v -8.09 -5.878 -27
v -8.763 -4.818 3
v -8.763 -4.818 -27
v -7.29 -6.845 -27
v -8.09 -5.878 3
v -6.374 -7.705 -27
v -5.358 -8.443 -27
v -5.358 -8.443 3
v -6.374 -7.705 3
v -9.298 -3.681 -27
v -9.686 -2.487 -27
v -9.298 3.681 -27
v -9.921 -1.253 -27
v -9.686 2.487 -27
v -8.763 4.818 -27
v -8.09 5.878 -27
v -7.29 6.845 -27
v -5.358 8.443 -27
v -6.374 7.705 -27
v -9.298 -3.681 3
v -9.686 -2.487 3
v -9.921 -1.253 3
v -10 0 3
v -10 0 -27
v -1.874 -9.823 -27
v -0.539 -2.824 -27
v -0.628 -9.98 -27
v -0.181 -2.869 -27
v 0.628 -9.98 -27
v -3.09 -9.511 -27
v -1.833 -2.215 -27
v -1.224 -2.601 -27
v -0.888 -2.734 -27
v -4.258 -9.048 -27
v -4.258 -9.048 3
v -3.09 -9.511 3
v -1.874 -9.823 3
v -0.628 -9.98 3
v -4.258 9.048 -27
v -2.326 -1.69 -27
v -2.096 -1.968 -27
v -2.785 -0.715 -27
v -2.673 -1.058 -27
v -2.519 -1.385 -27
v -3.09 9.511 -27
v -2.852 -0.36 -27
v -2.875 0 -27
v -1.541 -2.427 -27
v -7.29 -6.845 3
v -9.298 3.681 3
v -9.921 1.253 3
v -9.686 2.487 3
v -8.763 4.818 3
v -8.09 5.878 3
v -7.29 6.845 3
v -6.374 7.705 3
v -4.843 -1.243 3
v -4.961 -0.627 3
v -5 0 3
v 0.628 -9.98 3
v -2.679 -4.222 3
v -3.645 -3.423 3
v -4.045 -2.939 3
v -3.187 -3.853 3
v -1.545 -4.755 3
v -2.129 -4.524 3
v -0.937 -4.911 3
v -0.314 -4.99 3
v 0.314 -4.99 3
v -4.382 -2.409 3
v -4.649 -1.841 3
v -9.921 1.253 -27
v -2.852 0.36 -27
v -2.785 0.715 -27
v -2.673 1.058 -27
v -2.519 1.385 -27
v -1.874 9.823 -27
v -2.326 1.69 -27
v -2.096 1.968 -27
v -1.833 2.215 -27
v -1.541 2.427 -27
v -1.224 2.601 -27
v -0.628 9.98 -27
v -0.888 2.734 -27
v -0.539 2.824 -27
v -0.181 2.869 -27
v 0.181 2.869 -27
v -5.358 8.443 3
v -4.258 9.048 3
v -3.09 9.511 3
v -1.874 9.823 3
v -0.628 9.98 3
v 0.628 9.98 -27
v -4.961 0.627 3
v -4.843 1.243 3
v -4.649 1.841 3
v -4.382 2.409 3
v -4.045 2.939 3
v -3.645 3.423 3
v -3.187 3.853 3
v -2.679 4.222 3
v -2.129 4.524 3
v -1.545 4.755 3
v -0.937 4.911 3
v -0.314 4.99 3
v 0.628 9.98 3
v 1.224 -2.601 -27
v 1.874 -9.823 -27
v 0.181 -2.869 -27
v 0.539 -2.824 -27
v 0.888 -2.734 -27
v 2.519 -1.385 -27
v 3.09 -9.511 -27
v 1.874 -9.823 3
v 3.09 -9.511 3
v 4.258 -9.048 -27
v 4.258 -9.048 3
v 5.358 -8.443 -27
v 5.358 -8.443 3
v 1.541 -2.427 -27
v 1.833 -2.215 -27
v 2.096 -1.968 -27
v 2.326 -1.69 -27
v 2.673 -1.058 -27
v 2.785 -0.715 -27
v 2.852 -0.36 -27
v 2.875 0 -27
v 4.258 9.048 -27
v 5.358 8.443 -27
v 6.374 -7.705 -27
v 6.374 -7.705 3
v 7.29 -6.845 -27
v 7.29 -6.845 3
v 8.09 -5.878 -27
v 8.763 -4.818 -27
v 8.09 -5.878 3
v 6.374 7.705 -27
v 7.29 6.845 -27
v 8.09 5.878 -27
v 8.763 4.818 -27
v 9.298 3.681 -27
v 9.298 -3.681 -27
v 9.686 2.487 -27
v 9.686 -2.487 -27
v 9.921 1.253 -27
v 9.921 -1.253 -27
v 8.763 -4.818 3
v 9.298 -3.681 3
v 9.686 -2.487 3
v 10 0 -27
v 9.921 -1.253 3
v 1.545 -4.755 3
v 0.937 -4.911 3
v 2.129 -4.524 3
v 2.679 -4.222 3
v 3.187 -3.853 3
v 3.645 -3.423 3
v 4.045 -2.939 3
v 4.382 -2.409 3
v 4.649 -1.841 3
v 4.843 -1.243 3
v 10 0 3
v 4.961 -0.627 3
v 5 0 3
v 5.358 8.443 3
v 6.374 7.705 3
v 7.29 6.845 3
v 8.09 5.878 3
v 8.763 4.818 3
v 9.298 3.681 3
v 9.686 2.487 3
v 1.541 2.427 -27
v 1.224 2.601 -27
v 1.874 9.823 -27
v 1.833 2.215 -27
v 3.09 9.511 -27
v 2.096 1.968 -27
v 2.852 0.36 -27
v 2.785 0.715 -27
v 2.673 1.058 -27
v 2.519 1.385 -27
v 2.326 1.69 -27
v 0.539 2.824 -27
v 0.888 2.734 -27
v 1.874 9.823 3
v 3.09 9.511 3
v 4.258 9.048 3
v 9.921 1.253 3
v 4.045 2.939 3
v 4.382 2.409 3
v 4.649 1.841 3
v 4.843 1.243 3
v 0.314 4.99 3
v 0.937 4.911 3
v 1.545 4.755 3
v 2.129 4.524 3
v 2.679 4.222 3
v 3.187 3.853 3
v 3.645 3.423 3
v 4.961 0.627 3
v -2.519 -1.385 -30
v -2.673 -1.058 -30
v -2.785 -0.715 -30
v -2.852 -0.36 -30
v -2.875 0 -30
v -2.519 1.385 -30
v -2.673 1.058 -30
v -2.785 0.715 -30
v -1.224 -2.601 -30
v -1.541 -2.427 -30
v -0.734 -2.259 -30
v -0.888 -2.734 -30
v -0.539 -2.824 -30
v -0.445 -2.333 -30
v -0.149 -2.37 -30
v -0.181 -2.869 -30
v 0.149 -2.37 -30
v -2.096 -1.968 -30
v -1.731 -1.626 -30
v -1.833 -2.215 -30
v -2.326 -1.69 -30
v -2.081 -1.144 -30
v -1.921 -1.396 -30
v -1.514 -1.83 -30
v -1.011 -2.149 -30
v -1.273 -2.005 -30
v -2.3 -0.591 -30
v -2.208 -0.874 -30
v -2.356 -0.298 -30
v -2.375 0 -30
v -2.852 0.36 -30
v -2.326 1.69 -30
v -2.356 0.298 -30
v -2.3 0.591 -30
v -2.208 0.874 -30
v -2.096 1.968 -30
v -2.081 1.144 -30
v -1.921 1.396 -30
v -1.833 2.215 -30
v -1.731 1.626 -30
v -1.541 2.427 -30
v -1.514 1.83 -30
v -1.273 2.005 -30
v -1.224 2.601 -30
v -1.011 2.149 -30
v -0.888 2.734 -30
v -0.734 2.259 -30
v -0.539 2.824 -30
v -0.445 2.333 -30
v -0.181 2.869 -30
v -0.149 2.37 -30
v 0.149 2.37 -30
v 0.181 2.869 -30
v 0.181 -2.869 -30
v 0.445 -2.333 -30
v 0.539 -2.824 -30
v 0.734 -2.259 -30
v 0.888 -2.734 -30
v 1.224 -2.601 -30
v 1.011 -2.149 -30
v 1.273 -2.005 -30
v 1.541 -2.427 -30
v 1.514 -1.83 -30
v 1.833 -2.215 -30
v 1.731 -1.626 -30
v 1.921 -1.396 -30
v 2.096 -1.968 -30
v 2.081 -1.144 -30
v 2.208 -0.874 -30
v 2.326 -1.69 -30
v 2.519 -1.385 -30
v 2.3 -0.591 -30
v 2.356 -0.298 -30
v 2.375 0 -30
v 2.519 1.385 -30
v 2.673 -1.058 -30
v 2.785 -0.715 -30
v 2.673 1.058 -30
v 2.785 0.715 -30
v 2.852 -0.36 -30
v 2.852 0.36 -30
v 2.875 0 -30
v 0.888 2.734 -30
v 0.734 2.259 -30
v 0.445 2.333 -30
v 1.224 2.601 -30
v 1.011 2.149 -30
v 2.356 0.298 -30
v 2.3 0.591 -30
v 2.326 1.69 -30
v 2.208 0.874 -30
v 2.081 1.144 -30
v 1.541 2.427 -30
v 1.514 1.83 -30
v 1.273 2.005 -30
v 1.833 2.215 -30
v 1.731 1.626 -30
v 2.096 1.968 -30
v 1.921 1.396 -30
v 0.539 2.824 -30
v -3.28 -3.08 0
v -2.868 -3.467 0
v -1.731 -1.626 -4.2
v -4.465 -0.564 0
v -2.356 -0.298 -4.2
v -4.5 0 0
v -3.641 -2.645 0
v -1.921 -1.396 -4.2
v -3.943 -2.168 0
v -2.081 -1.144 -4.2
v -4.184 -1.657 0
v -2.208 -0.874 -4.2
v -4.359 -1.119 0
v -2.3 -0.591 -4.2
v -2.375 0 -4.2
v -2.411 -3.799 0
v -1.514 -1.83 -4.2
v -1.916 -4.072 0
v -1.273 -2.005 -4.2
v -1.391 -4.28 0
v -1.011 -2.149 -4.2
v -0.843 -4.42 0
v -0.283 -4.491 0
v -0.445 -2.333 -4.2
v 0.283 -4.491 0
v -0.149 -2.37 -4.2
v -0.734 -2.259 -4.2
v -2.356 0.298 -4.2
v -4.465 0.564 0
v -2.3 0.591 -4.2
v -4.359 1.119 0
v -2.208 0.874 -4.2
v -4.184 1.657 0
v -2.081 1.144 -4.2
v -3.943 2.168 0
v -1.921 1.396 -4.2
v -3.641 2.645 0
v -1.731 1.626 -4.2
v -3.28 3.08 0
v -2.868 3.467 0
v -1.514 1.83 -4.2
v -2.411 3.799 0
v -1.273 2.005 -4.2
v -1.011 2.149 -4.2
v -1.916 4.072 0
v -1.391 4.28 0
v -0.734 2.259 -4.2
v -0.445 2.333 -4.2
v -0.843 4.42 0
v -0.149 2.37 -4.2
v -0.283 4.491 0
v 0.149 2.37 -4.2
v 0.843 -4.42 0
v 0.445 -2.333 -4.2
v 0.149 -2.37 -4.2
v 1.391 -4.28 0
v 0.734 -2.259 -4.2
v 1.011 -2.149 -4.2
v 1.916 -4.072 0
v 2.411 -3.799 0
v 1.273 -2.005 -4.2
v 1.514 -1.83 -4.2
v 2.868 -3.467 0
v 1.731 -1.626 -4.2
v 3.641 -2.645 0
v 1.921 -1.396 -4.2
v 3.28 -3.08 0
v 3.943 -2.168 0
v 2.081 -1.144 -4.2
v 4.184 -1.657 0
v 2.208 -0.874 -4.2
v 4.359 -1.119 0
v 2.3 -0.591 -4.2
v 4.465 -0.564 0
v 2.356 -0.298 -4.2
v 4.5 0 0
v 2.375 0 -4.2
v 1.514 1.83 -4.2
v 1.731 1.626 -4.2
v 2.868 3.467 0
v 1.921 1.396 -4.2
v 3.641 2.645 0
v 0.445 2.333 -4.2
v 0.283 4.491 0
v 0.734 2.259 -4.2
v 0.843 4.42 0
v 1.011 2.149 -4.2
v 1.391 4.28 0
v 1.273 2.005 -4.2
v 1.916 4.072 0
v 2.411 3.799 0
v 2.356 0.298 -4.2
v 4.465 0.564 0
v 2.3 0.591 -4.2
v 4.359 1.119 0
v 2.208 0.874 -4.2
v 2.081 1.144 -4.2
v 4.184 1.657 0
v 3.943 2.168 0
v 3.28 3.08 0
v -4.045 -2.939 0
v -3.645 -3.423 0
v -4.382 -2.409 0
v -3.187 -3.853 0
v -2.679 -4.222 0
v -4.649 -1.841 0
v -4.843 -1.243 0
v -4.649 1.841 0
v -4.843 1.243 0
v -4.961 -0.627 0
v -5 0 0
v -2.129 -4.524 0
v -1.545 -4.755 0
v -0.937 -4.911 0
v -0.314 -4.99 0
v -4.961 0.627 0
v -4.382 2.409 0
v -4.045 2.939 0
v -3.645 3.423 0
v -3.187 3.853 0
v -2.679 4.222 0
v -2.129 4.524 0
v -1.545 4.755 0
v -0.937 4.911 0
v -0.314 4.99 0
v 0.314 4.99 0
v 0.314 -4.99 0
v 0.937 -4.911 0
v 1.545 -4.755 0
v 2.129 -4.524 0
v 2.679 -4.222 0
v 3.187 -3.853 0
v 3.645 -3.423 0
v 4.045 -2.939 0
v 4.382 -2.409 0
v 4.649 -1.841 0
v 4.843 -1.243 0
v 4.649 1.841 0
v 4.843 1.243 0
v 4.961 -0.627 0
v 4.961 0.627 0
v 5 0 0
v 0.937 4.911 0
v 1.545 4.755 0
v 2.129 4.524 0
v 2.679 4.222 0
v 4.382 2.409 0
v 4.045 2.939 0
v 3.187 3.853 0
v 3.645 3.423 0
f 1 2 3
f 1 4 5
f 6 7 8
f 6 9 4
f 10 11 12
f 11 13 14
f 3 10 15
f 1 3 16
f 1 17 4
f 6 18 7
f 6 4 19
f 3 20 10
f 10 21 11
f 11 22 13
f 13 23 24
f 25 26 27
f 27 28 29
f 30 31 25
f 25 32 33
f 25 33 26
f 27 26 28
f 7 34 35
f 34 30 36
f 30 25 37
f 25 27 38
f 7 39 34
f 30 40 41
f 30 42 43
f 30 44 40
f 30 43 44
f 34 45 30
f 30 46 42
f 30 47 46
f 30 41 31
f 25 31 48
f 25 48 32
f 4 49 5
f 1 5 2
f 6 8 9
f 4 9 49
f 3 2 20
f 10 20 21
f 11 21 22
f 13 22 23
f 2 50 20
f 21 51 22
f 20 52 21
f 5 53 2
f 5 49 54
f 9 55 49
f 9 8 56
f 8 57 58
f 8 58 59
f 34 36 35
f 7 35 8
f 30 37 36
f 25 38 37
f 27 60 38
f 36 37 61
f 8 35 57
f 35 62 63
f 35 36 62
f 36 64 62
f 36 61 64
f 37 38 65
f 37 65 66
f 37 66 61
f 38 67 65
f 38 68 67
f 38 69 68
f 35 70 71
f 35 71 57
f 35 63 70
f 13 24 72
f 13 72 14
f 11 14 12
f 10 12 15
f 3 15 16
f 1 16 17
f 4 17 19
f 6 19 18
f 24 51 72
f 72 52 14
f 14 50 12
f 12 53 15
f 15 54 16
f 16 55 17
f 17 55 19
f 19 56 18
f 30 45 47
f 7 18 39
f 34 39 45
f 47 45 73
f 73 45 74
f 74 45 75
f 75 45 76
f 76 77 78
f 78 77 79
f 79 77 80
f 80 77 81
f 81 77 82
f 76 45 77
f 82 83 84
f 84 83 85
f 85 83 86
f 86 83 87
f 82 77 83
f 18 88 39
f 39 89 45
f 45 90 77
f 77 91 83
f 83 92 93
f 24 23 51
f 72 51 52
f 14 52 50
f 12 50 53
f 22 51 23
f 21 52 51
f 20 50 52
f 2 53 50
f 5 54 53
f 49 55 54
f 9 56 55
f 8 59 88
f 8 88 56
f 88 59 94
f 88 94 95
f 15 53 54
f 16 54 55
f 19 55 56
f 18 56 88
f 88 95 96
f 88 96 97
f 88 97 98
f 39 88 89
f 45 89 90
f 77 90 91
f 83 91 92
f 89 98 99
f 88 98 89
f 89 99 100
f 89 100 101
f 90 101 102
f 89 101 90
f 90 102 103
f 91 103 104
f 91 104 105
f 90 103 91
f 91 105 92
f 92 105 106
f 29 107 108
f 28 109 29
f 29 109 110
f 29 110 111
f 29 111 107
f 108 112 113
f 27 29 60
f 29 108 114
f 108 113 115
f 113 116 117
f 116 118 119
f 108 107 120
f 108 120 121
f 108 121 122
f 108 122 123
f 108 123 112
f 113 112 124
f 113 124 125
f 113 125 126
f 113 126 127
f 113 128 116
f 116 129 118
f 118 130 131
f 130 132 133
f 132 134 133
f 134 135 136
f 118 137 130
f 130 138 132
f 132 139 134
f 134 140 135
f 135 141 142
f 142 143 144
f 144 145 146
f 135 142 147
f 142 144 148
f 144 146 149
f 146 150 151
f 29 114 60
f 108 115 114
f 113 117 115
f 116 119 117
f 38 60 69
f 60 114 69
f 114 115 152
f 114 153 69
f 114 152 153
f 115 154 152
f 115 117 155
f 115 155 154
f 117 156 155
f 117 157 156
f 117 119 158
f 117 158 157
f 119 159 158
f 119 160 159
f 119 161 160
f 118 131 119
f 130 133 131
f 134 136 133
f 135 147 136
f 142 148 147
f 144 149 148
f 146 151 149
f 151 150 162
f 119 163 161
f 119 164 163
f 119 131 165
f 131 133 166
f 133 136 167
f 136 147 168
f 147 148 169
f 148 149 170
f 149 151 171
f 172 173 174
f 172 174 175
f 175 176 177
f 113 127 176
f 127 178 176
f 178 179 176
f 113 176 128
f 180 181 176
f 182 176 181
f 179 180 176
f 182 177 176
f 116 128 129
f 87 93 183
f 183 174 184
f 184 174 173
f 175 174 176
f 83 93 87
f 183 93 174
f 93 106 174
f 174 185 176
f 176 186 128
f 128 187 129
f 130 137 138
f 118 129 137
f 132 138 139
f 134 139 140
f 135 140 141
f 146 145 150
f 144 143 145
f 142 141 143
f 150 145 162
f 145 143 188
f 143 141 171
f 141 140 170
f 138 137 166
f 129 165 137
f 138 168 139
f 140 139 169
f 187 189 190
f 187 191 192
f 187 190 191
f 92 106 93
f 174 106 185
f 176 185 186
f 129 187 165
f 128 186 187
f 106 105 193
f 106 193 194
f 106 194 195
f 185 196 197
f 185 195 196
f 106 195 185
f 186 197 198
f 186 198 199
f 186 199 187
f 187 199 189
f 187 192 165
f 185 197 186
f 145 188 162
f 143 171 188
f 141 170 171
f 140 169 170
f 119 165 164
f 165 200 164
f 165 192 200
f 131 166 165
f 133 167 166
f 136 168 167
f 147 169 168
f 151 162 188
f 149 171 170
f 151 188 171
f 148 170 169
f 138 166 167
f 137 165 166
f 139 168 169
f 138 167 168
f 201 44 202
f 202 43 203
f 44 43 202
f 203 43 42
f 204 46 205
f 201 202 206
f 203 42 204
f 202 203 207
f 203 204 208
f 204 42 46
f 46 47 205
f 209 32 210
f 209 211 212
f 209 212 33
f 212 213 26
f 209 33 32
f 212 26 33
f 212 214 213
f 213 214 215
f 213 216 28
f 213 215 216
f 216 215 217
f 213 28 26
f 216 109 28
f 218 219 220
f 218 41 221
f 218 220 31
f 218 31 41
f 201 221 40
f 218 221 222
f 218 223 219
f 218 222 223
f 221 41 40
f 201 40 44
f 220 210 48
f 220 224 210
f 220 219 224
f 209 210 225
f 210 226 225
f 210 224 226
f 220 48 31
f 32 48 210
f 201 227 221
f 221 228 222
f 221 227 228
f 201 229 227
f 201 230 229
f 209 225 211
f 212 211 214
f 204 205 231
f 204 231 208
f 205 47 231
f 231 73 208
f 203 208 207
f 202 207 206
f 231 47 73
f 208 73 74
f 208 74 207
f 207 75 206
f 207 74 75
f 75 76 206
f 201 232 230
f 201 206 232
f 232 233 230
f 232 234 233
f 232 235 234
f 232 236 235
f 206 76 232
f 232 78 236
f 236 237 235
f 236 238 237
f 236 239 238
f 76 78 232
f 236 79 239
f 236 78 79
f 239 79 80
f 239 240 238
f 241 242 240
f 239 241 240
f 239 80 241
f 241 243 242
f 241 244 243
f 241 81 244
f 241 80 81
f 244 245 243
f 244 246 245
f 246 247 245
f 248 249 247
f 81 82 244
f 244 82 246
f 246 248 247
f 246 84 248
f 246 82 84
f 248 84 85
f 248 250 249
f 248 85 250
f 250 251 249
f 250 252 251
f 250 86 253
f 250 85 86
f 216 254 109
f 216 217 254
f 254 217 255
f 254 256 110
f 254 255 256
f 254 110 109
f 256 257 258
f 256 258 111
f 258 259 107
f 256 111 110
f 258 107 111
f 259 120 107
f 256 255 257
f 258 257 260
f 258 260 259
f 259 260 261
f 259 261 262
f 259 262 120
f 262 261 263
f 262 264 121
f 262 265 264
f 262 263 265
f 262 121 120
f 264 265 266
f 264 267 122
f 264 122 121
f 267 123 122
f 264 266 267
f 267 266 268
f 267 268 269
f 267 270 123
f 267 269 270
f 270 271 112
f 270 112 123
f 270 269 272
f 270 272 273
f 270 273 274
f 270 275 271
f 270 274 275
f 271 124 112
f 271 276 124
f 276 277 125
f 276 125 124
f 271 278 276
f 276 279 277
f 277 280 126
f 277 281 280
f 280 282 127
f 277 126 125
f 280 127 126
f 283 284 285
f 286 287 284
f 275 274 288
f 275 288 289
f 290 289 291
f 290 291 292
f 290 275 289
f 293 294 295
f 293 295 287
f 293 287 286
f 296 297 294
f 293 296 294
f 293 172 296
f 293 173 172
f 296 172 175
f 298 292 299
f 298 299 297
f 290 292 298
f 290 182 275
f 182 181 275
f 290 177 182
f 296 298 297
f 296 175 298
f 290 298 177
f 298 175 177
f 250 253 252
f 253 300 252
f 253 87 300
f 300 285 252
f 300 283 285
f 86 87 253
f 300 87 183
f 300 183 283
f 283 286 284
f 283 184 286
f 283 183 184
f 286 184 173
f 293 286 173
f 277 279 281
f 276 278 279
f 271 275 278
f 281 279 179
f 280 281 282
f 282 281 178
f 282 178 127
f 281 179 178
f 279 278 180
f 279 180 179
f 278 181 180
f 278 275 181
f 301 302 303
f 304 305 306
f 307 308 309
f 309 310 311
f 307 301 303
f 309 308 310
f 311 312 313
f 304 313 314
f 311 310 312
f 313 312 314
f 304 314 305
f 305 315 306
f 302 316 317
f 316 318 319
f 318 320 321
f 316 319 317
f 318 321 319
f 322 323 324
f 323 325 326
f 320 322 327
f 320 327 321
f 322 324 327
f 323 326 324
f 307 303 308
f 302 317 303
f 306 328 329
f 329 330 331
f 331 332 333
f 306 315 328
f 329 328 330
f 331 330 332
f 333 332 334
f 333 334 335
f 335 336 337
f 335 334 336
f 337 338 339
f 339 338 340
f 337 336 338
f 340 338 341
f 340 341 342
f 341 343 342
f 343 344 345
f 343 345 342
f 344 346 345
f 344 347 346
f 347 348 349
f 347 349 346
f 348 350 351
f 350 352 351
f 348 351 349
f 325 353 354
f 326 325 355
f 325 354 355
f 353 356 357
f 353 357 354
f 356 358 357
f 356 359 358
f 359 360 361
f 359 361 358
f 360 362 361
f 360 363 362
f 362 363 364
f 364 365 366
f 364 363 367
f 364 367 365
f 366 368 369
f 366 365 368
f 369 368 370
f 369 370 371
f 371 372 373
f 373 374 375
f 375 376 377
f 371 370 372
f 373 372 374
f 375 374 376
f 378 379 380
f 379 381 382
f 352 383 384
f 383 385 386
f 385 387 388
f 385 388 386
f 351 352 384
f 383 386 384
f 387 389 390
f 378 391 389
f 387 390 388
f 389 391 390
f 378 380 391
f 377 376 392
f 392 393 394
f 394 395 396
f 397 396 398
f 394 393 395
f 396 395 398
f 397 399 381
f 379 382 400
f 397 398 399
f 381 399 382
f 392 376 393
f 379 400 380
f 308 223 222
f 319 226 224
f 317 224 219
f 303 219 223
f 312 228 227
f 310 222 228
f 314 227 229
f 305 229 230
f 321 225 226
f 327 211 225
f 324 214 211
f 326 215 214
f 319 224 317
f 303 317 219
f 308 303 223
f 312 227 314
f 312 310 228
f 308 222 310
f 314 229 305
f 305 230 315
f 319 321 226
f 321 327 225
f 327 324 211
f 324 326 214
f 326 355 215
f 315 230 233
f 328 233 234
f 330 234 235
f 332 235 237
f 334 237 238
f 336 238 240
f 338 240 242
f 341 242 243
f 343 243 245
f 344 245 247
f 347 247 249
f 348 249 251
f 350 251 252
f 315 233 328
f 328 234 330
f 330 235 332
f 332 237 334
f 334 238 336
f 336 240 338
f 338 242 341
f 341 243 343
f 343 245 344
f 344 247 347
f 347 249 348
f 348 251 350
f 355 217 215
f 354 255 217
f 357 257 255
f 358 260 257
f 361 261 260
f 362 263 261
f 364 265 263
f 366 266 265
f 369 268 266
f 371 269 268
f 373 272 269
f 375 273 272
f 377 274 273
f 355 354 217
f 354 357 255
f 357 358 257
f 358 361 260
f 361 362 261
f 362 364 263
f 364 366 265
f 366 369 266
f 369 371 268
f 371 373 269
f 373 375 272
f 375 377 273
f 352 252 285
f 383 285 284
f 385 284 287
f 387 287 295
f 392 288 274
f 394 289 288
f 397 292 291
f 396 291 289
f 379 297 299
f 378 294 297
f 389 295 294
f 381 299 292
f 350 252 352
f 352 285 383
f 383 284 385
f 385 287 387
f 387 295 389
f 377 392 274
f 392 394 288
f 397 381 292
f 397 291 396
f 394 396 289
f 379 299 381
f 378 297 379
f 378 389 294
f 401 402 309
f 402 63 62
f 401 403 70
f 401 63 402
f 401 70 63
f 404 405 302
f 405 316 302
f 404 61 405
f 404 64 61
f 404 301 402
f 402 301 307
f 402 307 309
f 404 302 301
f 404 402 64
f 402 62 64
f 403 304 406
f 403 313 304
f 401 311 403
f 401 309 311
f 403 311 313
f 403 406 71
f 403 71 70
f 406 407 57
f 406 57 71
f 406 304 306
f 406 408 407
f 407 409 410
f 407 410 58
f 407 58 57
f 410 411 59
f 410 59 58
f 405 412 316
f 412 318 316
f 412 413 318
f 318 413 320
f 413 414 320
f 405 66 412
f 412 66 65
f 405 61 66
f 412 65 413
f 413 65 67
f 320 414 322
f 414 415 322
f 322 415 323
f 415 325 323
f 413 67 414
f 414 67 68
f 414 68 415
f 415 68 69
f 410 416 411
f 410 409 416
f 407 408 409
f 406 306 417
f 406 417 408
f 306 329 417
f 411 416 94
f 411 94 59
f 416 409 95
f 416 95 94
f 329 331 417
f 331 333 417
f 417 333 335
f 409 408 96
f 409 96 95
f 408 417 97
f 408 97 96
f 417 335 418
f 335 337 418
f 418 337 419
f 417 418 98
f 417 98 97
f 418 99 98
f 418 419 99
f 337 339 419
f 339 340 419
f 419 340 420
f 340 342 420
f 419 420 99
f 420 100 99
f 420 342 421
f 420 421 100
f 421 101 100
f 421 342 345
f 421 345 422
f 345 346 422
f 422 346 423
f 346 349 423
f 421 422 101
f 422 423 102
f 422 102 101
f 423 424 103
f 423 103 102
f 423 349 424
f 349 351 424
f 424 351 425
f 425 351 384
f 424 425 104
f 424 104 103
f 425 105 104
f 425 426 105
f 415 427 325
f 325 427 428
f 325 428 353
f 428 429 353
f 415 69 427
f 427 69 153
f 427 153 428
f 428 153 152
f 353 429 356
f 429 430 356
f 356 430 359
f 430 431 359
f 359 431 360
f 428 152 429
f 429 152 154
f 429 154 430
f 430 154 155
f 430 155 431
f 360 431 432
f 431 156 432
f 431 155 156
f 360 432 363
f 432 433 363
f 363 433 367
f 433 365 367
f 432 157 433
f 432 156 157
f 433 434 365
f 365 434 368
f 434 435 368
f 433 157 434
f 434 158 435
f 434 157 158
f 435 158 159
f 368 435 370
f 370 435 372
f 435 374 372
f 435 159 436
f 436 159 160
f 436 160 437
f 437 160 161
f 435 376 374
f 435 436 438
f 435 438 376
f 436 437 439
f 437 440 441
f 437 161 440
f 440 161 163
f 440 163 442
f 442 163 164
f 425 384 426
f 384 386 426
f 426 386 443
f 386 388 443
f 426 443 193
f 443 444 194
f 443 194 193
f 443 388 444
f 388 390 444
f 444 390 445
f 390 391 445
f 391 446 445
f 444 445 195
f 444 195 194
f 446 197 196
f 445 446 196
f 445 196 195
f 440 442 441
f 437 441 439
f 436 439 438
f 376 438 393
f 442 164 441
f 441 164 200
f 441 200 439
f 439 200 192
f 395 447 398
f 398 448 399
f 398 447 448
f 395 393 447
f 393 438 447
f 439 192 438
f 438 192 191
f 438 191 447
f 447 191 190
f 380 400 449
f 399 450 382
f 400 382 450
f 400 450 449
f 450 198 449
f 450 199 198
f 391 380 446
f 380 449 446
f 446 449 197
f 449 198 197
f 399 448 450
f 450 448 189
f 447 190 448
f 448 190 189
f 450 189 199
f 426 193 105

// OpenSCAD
$fn = 50;

difference() {
	union() {
		translate(v = [0, 0, -27.0]) {
			cylinder(h = 30, r = 10.0);
		}
		#translate(v = [0, 0, -30.0]) {
			cylinder(h = 30, r = 2.875);
		}
	}
	union() {
		translate(v = [0, 0, 0]) {
			rotate(a = [0, 0, 0]) {
				difference() {
					union() {
						translate(v = [0, 0, -30.0]) {
							cylinder(h = 30, r = 2.25);
						}
						translate(v = [0, 0, -4.2]) {
							cylinder(h = 4.2, r1 = 2.375, r2 = 4.5);
						}
						translate(v = [0, 0, -30.0]) {
							cylinder(h = 30, r = 2.375);
						}
						translate(v = [0, 0, -30.0]) {
							cylinder(h = 30, r = 2.25);
						}
					}
					union();
				}
			}
		}
		#cylinder(h = 3, r = 5.0);
	}
}
